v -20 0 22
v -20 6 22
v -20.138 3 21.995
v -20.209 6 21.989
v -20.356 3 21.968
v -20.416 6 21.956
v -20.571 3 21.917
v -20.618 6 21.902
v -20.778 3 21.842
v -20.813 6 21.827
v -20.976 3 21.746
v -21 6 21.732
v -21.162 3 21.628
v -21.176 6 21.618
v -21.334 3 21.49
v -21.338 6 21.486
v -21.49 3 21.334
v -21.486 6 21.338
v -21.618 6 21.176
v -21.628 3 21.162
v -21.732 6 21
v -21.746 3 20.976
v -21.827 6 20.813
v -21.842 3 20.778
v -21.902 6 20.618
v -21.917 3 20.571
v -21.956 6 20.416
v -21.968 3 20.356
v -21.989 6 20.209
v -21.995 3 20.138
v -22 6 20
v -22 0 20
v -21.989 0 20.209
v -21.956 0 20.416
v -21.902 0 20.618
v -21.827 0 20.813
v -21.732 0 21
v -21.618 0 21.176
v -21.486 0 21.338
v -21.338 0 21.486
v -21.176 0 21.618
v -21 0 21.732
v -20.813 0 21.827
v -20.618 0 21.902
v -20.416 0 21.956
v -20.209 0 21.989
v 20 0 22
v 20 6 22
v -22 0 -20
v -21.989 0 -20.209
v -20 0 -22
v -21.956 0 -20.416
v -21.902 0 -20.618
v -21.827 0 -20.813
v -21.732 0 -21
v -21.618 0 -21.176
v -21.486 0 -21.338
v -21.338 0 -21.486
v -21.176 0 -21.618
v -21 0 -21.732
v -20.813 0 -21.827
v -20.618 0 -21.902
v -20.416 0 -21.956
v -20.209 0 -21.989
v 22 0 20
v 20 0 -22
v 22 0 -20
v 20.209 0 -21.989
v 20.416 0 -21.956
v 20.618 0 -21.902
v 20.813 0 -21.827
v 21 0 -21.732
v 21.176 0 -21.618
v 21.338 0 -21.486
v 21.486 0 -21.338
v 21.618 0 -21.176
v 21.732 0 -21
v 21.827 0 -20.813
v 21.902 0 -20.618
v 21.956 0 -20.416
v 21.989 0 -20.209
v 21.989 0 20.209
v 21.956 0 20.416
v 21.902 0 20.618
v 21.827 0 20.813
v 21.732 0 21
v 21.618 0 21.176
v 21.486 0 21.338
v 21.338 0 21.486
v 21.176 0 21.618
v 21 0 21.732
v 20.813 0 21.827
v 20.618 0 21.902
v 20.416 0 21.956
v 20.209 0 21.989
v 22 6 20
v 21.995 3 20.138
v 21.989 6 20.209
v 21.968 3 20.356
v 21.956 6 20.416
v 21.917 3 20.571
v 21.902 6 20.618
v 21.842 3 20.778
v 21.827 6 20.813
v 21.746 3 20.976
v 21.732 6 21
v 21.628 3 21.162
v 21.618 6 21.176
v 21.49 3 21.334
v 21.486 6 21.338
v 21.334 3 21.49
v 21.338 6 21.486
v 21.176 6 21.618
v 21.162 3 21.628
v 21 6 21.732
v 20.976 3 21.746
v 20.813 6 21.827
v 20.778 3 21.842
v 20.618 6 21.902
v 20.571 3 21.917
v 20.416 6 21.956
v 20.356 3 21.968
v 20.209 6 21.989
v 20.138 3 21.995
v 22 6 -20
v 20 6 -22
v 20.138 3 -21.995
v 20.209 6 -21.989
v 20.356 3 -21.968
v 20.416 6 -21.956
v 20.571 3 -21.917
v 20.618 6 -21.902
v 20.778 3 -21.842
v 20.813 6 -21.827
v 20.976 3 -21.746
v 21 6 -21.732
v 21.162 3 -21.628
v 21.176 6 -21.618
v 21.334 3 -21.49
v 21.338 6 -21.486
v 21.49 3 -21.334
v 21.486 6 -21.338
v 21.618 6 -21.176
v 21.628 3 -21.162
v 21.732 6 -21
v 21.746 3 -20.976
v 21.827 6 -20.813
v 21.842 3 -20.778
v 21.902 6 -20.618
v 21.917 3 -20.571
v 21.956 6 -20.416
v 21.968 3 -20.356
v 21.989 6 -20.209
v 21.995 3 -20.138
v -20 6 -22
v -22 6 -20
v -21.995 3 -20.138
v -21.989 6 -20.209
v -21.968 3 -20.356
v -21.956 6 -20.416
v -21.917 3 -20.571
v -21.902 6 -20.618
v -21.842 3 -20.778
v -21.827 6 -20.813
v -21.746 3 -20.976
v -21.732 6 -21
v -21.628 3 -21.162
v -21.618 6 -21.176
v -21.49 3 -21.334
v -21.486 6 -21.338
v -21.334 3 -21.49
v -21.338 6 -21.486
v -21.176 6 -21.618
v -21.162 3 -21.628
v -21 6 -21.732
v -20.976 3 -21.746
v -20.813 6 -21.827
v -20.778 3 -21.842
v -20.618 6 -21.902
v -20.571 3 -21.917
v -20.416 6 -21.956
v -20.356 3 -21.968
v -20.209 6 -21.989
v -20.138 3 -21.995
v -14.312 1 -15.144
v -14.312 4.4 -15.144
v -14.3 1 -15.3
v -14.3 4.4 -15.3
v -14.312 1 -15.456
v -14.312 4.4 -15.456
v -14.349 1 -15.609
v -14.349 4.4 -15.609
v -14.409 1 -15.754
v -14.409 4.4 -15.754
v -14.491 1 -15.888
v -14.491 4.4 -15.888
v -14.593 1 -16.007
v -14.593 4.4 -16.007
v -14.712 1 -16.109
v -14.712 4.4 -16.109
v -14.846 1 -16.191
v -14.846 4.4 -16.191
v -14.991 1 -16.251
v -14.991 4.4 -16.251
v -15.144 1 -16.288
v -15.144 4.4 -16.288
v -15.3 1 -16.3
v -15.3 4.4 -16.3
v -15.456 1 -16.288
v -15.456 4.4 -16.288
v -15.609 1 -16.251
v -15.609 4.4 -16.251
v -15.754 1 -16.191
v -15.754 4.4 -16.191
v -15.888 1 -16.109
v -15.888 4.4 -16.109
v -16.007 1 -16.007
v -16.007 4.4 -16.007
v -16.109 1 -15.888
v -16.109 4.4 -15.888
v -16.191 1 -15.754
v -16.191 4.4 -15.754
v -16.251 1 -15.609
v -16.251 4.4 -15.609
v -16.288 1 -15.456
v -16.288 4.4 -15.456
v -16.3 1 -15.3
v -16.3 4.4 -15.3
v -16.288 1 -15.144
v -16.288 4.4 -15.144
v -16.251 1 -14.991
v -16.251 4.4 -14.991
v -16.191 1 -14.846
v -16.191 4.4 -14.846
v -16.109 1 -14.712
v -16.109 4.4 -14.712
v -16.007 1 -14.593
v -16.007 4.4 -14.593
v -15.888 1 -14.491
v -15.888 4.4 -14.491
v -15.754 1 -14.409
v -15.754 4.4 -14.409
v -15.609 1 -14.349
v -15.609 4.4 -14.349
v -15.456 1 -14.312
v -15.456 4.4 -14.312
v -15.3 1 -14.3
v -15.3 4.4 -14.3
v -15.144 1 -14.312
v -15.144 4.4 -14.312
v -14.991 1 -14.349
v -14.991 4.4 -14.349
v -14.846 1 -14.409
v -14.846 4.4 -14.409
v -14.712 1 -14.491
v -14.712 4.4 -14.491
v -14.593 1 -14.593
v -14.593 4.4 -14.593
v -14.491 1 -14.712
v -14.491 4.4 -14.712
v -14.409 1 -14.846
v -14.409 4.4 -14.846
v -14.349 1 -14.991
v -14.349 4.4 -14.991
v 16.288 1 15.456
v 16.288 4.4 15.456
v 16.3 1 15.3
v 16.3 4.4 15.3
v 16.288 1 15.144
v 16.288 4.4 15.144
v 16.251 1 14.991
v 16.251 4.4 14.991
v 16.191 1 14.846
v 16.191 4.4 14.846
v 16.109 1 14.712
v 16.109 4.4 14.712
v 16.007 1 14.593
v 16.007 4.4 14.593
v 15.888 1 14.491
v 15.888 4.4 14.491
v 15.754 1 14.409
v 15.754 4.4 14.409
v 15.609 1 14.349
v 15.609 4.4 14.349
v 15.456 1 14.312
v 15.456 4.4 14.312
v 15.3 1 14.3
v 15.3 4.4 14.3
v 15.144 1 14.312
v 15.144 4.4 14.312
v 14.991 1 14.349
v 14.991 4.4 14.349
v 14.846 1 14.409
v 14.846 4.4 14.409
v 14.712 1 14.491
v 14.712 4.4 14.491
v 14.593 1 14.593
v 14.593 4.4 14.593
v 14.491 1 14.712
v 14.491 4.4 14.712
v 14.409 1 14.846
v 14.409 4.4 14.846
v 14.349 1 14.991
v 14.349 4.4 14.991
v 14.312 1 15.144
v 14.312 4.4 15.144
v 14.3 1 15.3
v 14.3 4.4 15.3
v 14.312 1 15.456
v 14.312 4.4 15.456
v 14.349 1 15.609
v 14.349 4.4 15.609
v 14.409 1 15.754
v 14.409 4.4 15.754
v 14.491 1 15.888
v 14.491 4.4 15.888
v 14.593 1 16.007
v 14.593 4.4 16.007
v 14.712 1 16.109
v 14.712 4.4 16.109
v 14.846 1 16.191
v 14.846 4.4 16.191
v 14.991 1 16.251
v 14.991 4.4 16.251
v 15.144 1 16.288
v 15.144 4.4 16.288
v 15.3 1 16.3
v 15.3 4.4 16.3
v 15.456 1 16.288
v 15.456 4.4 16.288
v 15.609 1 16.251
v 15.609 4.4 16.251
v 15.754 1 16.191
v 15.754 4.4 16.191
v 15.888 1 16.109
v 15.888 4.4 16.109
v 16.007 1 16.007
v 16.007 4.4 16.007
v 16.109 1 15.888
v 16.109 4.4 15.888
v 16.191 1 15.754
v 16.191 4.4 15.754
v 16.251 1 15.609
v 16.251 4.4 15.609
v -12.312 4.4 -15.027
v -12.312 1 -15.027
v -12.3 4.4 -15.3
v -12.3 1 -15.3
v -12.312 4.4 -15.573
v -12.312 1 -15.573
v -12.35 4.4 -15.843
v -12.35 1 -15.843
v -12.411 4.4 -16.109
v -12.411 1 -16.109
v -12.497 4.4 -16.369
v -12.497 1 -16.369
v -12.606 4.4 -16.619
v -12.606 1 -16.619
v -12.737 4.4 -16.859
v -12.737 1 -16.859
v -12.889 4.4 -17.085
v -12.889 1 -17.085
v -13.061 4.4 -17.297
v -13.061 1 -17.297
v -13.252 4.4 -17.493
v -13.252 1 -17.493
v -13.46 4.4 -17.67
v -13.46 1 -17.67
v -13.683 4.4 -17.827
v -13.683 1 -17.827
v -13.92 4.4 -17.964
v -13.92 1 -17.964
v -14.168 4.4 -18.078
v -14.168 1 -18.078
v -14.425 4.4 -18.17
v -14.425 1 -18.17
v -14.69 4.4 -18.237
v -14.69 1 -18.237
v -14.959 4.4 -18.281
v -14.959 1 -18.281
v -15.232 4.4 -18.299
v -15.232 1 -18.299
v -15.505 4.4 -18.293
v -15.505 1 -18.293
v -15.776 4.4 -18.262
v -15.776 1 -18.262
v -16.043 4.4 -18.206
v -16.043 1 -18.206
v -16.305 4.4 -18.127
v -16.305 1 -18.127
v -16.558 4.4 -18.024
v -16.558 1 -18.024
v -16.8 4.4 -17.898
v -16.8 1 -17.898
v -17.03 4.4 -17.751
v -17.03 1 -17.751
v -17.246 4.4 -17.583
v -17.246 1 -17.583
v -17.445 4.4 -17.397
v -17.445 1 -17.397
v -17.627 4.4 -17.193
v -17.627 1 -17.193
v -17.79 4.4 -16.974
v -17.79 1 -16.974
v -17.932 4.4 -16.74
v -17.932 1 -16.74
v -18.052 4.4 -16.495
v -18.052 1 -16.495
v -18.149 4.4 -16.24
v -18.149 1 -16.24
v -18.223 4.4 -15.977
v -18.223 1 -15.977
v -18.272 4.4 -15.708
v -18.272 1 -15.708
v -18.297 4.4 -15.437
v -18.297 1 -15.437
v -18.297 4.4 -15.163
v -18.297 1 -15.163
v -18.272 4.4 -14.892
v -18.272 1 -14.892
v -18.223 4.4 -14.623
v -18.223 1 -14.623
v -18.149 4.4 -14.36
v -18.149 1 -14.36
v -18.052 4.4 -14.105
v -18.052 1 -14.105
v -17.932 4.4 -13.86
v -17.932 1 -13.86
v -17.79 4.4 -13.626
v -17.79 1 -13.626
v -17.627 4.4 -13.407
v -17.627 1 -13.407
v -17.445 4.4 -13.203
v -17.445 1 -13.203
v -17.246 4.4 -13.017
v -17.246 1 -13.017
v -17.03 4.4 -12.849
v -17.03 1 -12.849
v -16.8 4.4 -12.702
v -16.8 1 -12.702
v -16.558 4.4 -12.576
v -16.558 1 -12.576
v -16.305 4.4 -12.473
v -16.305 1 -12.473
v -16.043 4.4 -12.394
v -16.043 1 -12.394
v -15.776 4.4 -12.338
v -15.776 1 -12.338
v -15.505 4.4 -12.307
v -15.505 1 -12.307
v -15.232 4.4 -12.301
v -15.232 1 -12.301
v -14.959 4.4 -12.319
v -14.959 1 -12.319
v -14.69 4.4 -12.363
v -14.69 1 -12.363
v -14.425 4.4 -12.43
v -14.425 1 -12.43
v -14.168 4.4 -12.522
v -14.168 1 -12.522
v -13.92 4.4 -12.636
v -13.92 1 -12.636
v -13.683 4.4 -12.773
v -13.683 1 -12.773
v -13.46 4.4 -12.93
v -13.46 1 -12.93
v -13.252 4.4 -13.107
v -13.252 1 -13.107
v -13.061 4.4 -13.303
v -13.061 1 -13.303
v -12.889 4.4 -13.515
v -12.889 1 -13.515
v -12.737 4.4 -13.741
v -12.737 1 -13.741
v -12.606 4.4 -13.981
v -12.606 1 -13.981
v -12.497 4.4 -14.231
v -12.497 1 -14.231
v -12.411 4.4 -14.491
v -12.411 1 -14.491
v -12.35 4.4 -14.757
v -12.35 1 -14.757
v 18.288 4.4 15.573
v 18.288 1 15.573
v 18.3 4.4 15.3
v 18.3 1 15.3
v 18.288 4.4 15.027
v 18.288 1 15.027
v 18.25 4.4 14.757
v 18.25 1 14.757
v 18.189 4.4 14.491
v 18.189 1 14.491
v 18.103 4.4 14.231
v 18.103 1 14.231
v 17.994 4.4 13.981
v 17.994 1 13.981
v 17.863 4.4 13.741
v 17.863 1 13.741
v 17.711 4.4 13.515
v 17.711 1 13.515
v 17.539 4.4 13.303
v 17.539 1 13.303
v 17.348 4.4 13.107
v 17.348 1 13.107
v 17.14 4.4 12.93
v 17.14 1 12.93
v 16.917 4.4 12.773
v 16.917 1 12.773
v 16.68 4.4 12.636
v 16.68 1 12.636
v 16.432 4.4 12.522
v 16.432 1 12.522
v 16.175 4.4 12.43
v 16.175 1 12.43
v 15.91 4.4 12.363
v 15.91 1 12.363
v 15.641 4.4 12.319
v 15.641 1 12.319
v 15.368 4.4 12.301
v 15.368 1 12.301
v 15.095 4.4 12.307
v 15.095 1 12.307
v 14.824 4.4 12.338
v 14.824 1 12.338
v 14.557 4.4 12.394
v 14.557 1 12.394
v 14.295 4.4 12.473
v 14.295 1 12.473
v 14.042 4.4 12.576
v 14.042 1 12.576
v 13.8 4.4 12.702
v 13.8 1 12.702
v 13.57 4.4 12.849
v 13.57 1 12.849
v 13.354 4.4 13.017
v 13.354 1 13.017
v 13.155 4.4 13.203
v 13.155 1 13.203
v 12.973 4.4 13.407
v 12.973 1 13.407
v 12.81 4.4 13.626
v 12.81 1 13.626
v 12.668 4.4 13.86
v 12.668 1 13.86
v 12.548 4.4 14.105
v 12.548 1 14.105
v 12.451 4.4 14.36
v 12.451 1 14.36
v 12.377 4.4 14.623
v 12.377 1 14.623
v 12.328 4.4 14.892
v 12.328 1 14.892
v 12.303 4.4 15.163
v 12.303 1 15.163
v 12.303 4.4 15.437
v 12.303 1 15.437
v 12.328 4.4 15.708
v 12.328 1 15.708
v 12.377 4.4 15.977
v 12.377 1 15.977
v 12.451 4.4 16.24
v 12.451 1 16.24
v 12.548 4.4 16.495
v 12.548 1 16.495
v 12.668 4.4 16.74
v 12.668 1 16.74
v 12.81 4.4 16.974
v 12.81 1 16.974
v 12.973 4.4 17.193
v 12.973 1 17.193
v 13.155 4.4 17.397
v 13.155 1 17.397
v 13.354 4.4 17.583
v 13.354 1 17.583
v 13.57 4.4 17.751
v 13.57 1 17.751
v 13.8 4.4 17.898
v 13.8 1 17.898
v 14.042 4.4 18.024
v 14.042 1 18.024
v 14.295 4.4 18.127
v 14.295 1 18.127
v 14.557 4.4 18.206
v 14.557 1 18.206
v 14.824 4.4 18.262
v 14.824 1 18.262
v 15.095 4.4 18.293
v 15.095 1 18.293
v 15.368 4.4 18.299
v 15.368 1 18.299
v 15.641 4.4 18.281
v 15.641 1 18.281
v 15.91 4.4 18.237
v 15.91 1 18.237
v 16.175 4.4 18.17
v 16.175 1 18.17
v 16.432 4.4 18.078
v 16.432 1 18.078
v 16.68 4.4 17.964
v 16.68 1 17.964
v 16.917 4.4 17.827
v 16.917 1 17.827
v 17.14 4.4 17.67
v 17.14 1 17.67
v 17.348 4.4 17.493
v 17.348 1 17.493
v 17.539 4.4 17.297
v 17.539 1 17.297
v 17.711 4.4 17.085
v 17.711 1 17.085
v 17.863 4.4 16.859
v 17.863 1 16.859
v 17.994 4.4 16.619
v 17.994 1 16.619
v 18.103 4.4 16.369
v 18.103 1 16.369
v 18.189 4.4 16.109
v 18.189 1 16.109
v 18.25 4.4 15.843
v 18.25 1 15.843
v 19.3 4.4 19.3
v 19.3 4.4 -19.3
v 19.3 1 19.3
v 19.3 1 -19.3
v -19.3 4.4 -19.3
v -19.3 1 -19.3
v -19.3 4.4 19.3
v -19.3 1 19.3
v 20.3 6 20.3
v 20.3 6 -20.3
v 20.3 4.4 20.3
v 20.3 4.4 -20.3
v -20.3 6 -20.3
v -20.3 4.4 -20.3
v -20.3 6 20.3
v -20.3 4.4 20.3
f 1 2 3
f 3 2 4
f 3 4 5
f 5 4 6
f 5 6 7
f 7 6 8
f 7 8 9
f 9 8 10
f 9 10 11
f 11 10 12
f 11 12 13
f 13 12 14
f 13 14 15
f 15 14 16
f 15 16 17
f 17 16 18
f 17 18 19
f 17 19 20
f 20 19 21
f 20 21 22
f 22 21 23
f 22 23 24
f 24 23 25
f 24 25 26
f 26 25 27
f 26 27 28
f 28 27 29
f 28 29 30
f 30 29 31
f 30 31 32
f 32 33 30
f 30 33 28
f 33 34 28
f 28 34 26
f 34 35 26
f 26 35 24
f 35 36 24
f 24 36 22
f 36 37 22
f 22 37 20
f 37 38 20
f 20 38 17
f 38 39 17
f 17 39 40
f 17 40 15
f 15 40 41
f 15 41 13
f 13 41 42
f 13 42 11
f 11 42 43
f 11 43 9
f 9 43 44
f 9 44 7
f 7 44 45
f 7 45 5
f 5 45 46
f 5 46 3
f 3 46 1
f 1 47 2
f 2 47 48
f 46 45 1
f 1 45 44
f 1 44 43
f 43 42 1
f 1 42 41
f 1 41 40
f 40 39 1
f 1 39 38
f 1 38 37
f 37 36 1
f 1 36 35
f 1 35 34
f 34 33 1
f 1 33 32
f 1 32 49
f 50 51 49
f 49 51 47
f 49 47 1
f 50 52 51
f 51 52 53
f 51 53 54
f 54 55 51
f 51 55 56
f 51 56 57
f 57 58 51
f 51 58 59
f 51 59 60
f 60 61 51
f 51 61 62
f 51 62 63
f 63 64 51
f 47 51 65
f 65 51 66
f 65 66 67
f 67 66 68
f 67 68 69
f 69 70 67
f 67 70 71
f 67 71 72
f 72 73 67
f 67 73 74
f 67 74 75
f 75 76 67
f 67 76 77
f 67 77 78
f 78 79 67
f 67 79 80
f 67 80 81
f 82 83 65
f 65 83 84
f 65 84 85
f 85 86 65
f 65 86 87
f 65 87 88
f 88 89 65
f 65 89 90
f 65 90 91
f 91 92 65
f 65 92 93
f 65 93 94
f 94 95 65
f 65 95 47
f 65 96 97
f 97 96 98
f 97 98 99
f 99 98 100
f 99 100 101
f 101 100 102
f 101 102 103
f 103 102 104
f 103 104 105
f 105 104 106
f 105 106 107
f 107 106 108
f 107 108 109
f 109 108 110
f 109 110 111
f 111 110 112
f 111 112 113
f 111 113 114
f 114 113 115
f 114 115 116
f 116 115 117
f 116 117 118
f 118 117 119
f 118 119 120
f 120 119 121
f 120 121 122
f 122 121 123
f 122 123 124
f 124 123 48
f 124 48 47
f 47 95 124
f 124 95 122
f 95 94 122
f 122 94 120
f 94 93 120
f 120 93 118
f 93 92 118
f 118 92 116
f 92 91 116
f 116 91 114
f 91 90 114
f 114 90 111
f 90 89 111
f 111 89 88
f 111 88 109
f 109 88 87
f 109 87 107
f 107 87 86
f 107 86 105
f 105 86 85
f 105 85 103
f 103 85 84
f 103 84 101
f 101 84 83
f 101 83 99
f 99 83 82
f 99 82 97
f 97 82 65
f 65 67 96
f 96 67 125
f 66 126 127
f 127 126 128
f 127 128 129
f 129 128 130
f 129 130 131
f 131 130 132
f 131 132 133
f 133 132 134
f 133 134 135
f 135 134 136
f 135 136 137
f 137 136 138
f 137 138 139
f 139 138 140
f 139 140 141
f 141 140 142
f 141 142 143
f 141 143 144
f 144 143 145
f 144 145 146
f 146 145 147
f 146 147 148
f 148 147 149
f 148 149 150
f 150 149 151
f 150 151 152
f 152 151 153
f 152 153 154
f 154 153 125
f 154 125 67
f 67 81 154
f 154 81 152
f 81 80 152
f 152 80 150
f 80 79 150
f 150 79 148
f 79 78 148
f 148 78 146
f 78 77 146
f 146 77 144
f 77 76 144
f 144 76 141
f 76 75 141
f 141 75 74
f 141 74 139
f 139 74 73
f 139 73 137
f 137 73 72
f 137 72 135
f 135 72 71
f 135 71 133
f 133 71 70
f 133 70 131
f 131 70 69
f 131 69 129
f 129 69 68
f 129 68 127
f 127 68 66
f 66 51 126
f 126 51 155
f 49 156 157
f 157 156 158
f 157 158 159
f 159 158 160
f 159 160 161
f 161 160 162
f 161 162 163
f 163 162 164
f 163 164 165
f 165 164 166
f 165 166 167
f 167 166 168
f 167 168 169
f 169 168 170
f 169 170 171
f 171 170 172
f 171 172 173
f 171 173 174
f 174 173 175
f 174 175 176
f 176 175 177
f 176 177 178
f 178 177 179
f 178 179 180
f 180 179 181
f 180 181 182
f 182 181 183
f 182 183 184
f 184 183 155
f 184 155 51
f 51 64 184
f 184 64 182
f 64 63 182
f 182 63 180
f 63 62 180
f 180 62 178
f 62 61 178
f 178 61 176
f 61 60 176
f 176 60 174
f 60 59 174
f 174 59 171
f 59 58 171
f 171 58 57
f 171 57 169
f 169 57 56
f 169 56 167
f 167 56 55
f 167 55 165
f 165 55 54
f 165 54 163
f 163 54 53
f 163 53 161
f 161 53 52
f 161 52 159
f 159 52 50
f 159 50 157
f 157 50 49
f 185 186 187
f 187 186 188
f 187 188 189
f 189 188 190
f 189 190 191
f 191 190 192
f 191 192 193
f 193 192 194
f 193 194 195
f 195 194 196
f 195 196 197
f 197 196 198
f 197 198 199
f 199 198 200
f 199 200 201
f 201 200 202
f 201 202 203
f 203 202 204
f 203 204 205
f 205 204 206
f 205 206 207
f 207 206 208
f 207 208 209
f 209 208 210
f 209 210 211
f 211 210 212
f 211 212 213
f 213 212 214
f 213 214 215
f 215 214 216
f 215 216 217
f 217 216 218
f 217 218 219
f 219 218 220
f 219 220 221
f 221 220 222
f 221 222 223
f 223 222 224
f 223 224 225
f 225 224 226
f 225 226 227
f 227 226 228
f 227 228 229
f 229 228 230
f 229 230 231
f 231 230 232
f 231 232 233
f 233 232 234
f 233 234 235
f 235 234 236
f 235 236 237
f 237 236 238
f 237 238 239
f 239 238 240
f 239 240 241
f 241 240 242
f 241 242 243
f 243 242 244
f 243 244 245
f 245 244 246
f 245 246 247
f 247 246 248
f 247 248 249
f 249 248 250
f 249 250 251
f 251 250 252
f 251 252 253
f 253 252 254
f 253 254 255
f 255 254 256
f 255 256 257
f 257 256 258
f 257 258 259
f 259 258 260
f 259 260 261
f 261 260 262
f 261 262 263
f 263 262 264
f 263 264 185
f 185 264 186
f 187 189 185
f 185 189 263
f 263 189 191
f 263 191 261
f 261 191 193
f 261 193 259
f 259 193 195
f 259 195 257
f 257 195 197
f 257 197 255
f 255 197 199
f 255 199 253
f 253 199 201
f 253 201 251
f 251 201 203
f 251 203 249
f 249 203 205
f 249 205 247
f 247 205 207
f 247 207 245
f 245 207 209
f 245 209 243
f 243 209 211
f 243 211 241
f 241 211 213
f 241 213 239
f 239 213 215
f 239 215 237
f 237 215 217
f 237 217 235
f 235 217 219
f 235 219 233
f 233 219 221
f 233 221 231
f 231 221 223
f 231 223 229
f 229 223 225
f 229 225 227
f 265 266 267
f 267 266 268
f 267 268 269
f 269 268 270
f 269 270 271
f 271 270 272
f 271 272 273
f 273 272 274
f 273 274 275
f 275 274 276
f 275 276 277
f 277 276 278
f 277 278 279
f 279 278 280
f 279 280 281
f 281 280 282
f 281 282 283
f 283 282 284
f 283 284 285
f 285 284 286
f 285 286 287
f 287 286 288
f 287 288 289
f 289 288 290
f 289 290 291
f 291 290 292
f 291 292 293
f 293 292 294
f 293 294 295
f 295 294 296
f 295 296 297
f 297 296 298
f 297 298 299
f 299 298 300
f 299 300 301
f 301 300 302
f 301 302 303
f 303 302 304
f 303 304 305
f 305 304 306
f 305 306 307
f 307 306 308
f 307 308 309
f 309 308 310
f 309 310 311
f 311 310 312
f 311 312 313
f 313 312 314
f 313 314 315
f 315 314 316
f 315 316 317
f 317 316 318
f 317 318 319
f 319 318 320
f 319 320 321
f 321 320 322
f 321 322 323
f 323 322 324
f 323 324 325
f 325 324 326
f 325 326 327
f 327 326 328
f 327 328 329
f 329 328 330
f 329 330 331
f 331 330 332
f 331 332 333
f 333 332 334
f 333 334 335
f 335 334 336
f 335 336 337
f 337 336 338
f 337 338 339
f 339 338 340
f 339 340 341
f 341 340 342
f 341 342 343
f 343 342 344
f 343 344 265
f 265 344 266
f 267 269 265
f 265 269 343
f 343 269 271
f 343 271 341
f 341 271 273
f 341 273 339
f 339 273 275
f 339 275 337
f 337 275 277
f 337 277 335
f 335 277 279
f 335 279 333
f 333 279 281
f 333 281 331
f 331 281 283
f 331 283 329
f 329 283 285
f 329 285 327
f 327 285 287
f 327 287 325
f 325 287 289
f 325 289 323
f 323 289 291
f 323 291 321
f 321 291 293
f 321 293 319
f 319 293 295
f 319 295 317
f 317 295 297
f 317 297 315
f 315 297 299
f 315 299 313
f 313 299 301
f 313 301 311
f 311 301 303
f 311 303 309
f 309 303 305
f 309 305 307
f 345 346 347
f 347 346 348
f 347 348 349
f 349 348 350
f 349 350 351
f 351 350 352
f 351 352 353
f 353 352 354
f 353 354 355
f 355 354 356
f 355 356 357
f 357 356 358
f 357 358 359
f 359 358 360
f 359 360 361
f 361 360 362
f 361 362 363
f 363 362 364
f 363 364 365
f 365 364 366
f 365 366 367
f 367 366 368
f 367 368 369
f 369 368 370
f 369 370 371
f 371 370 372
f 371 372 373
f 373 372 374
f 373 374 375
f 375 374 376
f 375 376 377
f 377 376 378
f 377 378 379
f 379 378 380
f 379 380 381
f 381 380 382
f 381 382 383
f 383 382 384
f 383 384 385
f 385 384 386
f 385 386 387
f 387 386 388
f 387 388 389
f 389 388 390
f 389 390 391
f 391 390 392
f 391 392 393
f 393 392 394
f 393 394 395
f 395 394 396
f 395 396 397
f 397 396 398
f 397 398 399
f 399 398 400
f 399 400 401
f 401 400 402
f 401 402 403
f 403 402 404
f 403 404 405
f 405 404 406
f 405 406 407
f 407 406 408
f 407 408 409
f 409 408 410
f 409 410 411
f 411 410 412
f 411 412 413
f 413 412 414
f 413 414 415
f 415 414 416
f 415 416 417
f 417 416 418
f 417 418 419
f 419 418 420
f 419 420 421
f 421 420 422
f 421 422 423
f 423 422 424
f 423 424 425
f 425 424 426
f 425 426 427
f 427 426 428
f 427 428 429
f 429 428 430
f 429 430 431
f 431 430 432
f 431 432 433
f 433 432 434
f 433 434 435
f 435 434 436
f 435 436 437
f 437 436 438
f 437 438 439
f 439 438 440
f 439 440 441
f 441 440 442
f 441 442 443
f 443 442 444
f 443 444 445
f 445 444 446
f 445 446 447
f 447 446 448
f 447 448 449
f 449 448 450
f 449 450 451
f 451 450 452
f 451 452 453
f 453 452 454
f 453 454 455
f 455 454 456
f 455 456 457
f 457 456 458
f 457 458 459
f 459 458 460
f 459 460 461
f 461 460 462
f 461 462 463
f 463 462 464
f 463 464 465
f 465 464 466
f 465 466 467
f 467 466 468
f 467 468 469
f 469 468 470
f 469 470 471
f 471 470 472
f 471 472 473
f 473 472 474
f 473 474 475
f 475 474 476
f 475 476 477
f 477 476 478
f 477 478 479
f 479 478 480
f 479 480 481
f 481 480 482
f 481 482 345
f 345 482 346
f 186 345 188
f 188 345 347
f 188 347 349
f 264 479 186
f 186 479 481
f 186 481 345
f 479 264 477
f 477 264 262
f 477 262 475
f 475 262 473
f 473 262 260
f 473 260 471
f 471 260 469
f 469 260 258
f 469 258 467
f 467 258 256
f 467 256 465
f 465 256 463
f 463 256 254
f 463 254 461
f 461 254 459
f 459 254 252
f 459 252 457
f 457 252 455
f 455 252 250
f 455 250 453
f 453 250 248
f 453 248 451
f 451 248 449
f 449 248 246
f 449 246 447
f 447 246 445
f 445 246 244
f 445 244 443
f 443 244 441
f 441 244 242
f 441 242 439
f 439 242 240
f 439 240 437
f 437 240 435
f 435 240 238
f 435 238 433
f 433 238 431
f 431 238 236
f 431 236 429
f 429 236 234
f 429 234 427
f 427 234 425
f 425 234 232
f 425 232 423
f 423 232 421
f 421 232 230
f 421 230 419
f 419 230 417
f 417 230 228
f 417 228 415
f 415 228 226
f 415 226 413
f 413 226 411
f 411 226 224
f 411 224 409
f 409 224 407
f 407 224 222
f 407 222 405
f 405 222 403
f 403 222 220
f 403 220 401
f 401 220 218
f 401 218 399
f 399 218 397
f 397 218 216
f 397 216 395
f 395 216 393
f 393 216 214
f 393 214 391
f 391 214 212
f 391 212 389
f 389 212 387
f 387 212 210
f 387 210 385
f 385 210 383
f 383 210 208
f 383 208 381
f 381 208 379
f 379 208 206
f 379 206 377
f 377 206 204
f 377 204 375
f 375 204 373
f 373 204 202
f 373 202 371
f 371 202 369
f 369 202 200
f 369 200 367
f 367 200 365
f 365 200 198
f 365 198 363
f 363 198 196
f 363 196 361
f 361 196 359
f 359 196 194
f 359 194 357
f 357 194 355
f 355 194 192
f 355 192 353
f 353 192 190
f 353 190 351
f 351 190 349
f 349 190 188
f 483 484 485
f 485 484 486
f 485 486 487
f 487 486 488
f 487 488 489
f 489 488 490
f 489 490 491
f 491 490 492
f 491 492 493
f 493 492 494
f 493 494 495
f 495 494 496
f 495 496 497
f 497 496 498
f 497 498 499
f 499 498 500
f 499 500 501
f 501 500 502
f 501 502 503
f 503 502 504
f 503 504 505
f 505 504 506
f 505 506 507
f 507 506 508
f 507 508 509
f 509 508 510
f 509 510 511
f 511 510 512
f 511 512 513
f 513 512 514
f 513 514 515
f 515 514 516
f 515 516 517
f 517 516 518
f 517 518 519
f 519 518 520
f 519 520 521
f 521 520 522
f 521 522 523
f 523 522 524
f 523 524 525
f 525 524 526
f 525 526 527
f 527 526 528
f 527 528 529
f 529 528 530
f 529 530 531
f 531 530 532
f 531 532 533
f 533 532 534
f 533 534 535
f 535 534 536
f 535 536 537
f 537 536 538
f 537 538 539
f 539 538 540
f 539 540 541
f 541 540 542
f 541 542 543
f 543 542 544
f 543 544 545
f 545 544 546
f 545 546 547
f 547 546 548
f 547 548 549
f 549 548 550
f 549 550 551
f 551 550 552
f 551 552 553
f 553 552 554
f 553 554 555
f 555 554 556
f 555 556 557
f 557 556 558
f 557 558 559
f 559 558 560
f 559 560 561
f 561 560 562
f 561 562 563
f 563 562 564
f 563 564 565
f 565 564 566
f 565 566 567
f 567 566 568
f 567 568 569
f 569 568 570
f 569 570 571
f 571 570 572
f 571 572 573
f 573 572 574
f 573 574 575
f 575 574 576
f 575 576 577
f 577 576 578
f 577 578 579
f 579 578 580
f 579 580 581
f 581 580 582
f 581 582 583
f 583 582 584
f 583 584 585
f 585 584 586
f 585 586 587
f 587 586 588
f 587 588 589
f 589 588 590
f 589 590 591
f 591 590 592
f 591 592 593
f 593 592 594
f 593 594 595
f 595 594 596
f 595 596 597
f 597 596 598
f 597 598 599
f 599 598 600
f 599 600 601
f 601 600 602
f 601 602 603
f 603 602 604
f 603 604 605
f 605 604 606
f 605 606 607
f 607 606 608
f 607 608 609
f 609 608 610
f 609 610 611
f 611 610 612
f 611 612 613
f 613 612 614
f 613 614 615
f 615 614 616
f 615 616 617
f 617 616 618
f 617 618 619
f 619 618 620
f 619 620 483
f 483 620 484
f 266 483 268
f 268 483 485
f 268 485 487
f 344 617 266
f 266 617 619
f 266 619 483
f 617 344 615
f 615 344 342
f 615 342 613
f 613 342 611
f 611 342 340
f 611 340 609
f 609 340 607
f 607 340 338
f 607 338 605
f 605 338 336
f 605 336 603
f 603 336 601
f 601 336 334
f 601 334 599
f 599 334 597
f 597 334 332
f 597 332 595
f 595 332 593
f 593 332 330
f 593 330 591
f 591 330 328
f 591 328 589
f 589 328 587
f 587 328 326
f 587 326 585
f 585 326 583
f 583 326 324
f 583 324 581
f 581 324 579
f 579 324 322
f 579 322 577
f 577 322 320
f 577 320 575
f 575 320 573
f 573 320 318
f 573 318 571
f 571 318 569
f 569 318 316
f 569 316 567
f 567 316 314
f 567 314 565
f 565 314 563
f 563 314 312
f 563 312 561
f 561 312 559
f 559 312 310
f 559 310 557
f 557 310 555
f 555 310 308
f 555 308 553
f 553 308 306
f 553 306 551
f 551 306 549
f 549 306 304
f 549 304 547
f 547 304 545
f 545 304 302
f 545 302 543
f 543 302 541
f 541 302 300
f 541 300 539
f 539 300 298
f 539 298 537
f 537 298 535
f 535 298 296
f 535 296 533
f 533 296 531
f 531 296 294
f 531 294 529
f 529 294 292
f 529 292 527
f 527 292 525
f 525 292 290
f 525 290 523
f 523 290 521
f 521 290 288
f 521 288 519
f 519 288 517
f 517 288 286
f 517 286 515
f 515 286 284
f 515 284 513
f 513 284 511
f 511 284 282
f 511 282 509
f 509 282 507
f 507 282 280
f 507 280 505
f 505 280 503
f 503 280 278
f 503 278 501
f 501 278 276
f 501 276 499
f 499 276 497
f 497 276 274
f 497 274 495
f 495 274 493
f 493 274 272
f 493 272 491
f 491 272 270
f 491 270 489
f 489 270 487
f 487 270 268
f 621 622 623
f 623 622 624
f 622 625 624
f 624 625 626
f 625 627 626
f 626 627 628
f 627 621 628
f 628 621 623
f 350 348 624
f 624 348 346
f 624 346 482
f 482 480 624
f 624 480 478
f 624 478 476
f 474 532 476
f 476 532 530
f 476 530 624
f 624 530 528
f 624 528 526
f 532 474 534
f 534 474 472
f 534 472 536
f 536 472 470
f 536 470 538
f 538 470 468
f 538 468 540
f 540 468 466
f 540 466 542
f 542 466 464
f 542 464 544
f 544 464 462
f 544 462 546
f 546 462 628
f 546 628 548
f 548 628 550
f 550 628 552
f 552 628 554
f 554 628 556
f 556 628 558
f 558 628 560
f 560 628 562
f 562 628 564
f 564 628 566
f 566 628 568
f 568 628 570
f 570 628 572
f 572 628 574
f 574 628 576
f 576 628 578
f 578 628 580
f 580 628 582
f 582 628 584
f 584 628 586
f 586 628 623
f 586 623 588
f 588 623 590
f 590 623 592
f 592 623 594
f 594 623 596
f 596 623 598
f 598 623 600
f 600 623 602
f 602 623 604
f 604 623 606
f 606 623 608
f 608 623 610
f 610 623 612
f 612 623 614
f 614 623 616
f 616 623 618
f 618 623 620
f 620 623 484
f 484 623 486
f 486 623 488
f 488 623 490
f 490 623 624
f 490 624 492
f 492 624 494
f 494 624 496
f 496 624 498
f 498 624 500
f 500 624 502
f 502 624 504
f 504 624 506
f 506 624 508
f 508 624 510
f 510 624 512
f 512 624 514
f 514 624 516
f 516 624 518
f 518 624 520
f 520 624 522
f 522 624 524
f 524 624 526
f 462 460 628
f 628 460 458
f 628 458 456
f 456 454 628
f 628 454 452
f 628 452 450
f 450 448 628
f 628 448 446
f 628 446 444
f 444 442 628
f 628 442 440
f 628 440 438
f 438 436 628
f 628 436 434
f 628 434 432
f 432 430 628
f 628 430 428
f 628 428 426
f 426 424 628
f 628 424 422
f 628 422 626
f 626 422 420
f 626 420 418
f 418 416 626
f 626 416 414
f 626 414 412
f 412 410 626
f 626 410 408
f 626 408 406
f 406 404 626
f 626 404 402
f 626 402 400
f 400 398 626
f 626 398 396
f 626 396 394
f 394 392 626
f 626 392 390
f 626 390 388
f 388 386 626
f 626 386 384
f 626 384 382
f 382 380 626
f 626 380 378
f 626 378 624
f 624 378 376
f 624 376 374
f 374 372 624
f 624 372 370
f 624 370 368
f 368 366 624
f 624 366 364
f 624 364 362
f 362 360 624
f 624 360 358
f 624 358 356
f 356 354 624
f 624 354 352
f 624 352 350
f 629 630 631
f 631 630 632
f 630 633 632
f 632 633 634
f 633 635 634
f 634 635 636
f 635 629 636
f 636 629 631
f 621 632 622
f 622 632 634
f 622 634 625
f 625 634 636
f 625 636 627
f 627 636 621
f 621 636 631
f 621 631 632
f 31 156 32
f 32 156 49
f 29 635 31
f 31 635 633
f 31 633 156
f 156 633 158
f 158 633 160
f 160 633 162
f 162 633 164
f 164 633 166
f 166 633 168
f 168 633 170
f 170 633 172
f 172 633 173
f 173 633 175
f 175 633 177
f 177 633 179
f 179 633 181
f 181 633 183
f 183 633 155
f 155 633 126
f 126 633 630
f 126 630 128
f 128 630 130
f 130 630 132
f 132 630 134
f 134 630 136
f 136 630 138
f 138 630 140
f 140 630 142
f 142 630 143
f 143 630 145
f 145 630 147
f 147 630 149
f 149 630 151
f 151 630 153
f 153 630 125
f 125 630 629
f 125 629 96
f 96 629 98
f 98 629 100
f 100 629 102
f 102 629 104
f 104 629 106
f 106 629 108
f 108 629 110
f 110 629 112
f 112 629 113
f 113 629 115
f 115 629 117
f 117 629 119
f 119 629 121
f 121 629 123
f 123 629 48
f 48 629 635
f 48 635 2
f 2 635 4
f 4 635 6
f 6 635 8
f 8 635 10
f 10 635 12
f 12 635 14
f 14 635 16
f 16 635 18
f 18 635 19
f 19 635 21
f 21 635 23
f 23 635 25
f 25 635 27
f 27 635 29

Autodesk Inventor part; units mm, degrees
ref_plane "YZ Plane" through (0, 0, 0) normal (1, 0, 0) x (0, 1, 0)
ref_plane "XZ Plane" through (0, 0, 0) normal (0, 1, 0) x (-1, 0, 0)
ref_plane "XY Plane" through (0, 0, 0) normal (0, 0, 1) x (1, 0, 0)
sketch "Sketch1" plane through (0, 0, 0) normal (0, 1, 0) x (-1, 0, 0)
  line L0 (22, 22) -> (-22, 22)
  line L1 (-22, 22) -> (-22, -22)
  line L2 (-22, -22) -> (22, -22)
  line L3 (22, -22) -> (22, 22)
  line L4 (22, 22) -> (-22, -22) construction
  line L5 (-22, 22) -> (22, -22) construction
  point P0 (0, 0)
  dimension "d0" = 44
  dimension "d1" = 44
extrude "Extrusion1" add sketch "Sketch1" along normal blind 6
sketch "Sketch2" plane through (0, 6, 0) normal (0, 1, 0) x (1, 0, 0)
  line L0 (-20.3, -20.3) -> (20.3, -20.3)
  line L1 (20.3, -20.3) -> (20.3, 20.3)
  line L2 (20.3, 20.3) -> (-20.3, 20.3)
  line L3 (-20.3, 20.3) -> (-20.3, -20.3)
  line L4 (-20.3, -20.3) -> (20.3, 20.3) construction
  line L5 (20.3, -20.3) -> (-20.3, 20.3) construction
  point P0 (0, 0)
  dimension "d4" = 40.6
  dimension "d5" = 40.6
extrude "Extrusion2" cut sketch "Sketch2" against normal blind 1.6
sketch "Sketch3" plane through (0, 4.4, 0) normal (0, 1, 0) x (1, 0, 0)
  line L0 (-19.3, -19.3) -> (19.3, -19.3)
  line L1 (19.3, -19.3) -> (19.3, 19.3)
  line L2 (19.3, 19.3) -> (-19.3, 19.3)
  line L3 (-19.3, 19.3) -> (-19.3, -19.3)
  line L4 (-19.3, -19.3) -> (19.3, 19.3) construction
  line L5 (19.3, -19.3) -> (-19.3, 19.3) construction
  point P0 (0, 0)
  dimension "d8" = 38.6
  dimension "d9" = 38.6
extrude "Extrusion3" cut sketch "Sketch3" against normal blind 3.4
sketch "Sketch4" plane through (0, 1, 0) normal (0, 1, 0) x (1, 0, 0)
  circle A0 centre (-15.3, 15.3) radius 3
  circle A1 centre (15.3, -15.3) radius 3
  line L0 (-20.3, 20.3) -> (20.3, 20.3) projected
  line L1 (-20.3, -20.3) -> (-20.3, 20.3) projected
  line L2 (20.3, 20.3) -> (20.3, -20.3) projected
  line L3 (20.3, -20.3) -> (-20.3, -20.3) projected
  point P0 (0, 0)
  dimension "d12" = 5
  dimension "d13" = 5
  dimension "d14" = 6
  dimension "d15" = 5
  dimension "d16" = 5
  dimension "d17" = 6
extrude "Extrusion4" add sketch "Sketch4" along normal blind 3.4 contours A0 | A1
sketch "Sketch5" plane through (-15.3, 4.4, -15.3) normal (0, 1, 0) x (1, 0, 0)
  circle A0 centre (0, 0) radius 1
  circle A1 centre (30.6, -30.6) radius 3 projected
  circle A2 centre (30.6, -30.6) radius 1
  point P0 (15.3, -15.3)
  dimension "d20" = 2
  dimension "d21" = 2
extrude "Extrusion5" cut sketch "Sketch5" against normal blind 3.4 contours A0 | A2
fillet "Fillet1" radius 2 4 edges at (-22, 3, -22) (22, 3, -22) (22, 3, 22) (-22, 3, 22)
properties part number "elec_detect_bucket"
